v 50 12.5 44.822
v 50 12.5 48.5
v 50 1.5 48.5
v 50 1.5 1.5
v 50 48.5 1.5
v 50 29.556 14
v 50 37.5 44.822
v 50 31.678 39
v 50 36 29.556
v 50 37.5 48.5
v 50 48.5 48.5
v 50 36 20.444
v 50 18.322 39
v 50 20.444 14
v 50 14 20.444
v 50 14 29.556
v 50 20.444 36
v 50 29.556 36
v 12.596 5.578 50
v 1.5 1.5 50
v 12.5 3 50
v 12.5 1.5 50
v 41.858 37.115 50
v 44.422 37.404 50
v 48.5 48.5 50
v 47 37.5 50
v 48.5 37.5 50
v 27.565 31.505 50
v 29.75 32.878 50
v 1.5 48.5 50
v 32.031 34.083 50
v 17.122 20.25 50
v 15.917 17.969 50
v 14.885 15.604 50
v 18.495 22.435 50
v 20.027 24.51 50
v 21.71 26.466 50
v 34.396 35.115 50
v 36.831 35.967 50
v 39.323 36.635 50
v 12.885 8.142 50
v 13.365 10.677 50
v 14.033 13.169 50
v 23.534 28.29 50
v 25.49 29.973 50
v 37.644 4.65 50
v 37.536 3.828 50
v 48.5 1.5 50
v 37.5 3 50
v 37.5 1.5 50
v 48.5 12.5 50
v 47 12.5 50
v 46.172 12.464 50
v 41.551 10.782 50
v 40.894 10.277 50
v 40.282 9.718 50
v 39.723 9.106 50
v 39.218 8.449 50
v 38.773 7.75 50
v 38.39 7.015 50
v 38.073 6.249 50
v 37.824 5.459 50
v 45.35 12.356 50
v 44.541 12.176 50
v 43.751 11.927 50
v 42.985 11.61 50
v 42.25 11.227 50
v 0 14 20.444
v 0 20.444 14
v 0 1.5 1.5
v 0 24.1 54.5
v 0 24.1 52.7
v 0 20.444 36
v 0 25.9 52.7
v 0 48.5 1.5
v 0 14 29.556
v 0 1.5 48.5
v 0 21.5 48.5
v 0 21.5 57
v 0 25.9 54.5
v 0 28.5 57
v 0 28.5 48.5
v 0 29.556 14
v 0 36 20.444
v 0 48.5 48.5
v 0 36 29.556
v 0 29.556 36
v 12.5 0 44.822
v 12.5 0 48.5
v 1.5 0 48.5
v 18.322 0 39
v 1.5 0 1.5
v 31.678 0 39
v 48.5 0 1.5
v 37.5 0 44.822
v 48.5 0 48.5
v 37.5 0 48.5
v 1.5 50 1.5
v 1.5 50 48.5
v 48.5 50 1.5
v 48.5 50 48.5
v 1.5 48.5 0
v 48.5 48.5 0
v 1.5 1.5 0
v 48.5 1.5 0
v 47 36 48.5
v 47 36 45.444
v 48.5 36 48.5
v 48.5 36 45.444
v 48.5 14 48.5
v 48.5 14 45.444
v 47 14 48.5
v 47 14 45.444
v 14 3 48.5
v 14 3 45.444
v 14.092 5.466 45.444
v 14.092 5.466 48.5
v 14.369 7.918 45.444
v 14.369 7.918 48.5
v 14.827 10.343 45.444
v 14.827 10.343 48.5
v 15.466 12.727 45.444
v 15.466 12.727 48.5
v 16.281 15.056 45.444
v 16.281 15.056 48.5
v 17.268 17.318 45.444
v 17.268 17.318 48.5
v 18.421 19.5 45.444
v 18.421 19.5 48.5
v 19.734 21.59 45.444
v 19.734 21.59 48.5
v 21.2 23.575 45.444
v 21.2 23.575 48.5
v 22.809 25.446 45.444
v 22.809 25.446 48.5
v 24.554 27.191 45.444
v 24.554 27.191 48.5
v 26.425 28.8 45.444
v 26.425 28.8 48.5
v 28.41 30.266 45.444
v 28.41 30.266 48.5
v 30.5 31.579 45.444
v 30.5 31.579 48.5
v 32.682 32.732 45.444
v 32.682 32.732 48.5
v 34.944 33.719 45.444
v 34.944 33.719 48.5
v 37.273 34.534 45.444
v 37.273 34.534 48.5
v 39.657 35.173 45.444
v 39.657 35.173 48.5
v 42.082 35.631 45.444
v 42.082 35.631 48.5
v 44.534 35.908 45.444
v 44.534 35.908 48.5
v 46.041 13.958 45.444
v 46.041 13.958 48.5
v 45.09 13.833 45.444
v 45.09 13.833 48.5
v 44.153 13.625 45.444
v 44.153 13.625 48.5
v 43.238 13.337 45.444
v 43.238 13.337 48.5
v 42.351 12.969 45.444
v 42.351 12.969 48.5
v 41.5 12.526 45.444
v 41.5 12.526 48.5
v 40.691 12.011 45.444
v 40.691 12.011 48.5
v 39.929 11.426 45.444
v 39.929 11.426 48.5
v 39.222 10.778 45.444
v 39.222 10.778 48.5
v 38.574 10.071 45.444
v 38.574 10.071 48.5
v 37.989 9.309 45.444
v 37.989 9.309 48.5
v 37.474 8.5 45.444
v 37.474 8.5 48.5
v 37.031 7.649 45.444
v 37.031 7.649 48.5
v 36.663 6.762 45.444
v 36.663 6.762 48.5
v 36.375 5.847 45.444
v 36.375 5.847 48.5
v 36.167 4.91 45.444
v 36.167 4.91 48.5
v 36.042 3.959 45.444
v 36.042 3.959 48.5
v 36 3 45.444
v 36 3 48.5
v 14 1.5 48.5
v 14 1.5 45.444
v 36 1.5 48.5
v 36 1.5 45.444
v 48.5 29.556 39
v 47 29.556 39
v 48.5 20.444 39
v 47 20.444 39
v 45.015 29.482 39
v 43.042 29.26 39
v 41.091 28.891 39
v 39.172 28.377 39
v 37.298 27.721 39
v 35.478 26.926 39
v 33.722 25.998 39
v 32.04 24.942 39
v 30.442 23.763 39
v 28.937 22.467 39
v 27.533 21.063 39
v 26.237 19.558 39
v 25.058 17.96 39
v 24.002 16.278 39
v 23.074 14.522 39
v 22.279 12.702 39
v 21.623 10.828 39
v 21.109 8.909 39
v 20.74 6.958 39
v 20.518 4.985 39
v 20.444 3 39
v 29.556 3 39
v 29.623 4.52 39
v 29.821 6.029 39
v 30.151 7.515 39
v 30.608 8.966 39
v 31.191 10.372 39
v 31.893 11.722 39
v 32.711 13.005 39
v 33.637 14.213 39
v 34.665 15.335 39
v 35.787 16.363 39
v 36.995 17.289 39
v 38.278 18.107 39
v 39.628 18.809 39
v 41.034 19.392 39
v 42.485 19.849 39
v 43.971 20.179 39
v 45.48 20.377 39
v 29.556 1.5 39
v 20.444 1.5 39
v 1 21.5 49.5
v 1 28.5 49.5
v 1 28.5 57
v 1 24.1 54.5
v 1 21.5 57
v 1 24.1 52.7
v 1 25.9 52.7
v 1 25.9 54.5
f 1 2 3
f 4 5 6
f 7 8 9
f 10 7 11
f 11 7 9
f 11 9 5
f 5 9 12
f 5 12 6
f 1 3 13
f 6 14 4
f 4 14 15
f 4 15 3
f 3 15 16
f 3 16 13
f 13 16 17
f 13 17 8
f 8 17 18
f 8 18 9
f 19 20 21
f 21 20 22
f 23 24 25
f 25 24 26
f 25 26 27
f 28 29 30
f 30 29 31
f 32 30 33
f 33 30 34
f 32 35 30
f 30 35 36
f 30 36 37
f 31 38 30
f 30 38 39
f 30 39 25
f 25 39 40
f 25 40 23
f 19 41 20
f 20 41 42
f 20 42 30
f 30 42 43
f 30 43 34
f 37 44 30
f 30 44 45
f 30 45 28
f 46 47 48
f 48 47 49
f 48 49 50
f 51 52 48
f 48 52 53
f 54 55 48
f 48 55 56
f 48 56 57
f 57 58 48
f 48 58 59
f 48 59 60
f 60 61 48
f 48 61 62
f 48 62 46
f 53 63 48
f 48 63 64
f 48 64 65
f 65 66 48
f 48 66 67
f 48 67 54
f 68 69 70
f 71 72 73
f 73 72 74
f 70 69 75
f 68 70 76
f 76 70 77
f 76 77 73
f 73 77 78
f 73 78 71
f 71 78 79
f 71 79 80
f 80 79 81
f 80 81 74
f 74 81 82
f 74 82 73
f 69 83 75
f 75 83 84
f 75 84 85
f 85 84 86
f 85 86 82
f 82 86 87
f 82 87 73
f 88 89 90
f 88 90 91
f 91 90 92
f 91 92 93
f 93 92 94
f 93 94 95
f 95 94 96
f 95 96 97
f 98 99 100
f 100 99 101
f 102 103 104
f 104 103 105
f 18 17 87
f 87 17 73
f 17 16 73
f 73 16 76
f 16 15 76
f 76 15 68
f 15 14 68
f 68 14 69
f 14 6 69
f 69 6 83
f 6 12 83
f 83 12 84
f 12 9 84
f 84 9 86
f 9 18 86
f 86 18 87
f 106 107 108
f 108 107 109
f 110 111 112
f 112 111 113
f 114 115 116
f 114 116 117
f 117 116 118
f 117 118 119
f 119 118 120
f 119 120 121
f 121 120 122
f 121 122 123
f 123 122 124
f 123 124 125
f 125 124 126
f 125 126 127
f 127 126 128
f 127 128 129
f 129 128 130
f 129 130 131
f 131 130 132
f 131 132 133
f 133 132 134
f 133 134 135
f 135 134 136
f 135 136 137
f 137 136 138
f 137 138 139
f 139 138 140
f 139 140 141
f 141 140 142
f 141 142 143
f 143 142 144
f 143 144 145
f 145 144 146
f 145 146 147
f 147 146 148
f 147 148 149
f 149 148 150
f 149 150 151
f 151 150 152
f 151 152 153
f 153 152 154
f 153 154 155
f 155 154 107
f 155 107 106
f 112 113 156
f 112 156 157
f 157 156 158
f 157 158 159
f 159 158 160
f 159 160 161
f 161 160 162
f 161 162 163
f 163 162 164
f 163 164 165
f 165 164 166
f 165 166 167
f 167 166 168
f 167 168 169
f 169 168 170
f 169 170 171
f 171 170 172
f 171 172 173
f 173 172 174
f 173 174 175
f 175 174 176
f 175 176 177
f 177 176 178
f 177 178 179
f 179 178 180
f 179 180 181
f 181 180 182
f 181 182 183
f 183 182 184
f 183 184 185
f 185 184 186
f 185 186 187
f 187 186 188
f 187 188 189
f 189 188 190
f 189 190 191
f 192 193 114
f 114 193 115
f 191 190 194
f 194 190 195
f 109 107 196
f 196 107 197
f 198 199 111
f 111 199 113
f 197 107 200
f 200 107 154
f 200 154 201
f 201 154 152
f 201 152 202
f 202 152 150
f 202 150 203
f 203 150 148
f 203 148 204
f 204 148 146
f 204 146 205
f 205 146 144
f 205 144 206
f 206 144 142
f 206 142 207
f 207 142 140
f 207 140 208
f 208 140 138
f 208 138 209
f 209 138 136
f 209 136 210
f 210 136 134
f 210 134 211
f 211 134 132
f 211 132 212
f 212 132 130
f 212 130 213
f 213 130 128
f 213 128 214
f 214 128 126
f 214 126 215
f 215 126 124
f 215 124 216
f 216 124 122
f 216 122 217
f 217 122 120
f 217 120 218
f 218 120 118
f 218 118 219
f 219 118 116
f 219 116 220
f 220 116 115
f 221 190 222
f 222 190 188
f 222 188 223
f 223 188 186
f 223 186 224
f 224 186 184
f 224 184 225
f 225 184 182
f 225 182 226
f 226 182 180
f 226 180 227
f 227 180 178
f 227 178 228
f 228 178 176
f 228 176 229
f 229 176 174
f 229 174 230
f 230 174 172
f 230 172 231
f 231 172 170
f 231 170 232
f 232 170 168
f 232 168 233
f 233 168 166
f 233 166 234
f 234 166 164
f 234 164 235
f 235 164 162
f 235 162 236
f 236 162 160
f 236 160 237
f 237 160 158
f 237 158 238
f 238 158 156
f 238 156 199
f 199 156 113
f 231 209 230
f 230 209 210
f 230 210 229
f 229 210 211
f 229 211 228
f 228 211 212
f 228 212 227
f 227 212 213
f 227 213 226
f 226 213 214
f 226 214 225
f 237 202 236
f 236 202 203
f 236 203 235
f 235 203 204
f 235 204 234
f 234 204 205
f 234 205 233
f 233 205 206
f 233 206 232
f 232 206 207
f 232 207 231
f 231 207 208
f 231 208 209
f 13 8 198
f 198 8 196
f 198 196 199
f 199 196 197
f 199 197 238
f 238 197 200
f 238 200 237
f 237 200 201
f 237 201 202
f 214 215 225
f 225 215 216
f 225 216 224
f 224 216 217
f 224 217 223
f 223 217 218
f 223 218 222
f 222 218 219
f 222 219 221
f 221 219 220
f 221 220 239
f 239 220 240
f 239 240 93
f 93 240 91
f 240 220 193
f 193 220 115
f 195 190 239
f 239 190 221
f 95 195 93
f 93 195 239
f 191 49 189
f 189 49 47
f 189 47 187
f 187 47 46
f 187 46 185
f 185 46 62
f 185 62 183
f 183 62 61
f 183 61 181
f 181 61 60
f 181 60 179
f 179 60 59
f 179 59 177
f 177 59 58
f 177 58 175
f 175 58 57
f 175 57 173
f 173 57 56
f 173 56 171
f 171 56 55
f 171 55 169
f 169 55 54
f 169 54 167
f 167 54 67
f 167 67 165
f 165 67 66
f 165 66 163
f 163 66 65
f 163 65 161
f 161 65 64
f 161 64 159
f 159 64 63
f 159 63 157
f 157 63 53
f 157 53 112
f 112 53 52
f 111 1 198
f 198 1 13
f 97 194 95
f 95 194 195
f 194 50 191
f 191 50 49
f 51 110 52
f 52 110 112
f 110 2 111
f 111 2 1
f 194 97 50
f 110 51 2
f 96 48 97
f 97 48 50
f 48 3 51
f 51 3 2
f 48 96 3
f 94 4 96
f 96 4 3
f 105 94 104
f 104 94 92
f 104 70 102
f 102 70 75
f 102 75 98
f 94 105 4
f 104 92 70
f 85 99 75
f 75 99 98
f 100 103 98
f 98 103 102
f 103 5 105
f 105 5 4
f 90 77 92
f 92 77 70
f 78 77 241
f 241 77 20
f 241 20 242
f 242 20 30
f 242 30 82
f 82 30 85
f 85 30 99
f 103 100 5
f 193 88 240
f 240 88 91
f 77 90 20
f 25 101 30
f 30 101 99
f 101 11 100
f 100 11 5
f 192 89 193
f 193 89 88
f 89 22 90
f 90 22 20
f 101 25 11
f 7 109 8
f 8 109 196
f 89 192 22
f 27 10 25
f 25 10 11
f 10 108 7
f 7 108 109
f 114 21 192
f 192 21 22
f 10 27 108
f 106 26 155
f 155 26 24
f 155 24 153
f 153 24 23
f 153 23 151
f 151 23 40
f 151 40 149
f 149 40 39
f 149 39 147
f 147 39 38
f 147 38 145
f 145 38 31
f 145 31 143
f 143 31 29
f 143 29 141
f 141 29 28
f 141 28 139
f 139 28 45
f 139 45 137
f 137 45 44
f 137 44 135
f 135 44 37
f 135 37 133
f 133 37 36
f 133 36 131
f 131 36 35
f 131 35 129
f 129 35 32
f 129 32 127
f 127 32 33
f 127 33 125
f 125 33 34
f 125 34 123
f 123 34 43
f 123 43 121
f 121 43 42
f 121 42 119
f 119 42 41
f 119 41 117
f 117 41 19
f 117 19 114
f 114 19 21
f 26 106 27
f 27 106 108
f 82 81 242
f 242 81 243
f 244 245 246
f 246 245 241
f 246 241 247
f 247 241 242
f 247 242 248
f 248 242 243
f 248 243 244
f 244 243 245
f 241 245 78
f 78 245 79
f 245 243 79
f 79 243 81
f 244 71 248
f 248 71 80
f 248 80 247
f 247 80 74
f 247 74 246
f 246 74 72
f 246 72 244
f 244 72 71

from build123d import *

# Parameters (mm, degrees)
SKETCH1_W                = 50
SKETCH1_H                = 50
BOSS_EXTRUDE1_DEPTH      = 50
CUT_EXTRUDE1_DEPTH       = 87.602540378
CHAMFER3_SIZE            = 1.5
BOSS_EXTRUDE2_DEPTH      = 7
BOSS_EXTRUDE2_DEPTH_BACK = 10
SKETCH5_W                = 1
SKETCH5_H                = 7
SKETCH6_W                = 1.8
SKETCH6_H                = 1.8
CUT_EXTRUDE2_DEPTH       = 7


with BuildPart() as part:
    # Sketch1 → Boss-Extrude1 (new body)
    with BuildSketch(Plane.XY):
        with Locations((25, 25)):
            Rectangle(SKETCH1_W, SKETCH1_H)
    extrude(amount=BOSS_EXTRUDE1_DEPTH)

    # Sketch2 → Cut-Extrude1 (cut, through all)
    with BuildSketch(Plane.ZY):
        Polygon((36, 29.556349186), (29.556349186, 36), (20.443650814, 36), (14, 29.556349186), (14, 20.443650814), (20.443650814, 14), (29.556349186, 14), (36, 20.443650814), align=None)
    extrude(amount=-CUT_EXTRUDE1_DEPTH, mode=Mode.SUBTRACT)

    # Cut-Sweep1: sweep along a path in Sketch4
    with BuildLine(Plane.XY.offset(50)) as cut_sweep1_path:
        Line((25, 0), (25, 3))
        ThreePointArc((25, 3), (31.443650814, 18.556349186), (47, 25))
        Line((47, 25), (50, 25))
    # Sketch3 → Cut-Sweep1 (sweep, cut)
    with BuildSketch(Plane.XZ):
        Polygon((29.556349186, 39), (36, 45.443650814), (36, 54.556349186), (29.556349186, 61), (20.443650814, 61), (14, 54.556349186), (14, 45.443650814), (20.443650814, 39), align=None)
    sweep(path=cut_sweep1_path.line, mode=Mode.SUBTRACT)

    # Chamfer3
    chamfer3_edges = [part.edges().sort_by_distance(p)[0] for p in [
        (50, 7, 50),
        (25, 50, 50),
        (43, 0, 50),
        (50, 43, 50),
        (36, 1.5, 50),
        (39.221825407, 10.778174593, 50),
        (48.5, 14, 50),
        (14, 1.5, 50),
        (23.665476221, 26.334523779, 50),
        (48.5, 36, 50),
        (50, 36, 47.721825407),
        (50, 14, 47.721825407),
        (36, 0, 47.721825407),
        (14, 0, 47.721825407),
        (17.221825407, 0, 42.221825407),
        (32.778174593, 0, 42.221825407),
        (50, 32.778174593, 42.221825407),
        (50, 17.221825407, 42.221825407),
        (0, 25, 50),
        (25, 50, 0),
        (50, 25, 0),
        (25, 0, 0),
        (0, 25, 0),
        (7, 0, 50),
        (0, 50, 25),
        (50, 50, 25),
        (50, 0, 25),
        (0, 0, 25),
    ]]
    chamfer(chamfer3_edges, length=CHAMFER3_SIZE)

    # Sketch5 → Boss-Extrude2 (add, two sides: drawn at the far end of the back side and taken through both)
    with BuildSketch(Plane.XY.offset(50).offset(-BOSS_EXTRUDE2_DEPTH_BACK)):
        with Locations((0.5, 25)):
            Rectangle(SKETCH5_W, SKETCH5_H)
    extrude(amount=BOSS_EXTRUDE2_DEPTH + BOSS_EXTRUDE2_DEPTH_BACK)

    # Sketch6 → Cut-Extrude2 (cut)
    with BuildSketch(Plane(origin=(1, 0, 0), x_dir=(0, 0, -1), z_dir=(1, 0, 0))):
        with Locations((-53.6, 25)):
            Rectangle(SKETCH6_W, SKETCH6_H)
    extrude(amount=-CUT_EXTRUDE2_DEPTH, mode=Mode.SUBTRACT)


solid = part.part
